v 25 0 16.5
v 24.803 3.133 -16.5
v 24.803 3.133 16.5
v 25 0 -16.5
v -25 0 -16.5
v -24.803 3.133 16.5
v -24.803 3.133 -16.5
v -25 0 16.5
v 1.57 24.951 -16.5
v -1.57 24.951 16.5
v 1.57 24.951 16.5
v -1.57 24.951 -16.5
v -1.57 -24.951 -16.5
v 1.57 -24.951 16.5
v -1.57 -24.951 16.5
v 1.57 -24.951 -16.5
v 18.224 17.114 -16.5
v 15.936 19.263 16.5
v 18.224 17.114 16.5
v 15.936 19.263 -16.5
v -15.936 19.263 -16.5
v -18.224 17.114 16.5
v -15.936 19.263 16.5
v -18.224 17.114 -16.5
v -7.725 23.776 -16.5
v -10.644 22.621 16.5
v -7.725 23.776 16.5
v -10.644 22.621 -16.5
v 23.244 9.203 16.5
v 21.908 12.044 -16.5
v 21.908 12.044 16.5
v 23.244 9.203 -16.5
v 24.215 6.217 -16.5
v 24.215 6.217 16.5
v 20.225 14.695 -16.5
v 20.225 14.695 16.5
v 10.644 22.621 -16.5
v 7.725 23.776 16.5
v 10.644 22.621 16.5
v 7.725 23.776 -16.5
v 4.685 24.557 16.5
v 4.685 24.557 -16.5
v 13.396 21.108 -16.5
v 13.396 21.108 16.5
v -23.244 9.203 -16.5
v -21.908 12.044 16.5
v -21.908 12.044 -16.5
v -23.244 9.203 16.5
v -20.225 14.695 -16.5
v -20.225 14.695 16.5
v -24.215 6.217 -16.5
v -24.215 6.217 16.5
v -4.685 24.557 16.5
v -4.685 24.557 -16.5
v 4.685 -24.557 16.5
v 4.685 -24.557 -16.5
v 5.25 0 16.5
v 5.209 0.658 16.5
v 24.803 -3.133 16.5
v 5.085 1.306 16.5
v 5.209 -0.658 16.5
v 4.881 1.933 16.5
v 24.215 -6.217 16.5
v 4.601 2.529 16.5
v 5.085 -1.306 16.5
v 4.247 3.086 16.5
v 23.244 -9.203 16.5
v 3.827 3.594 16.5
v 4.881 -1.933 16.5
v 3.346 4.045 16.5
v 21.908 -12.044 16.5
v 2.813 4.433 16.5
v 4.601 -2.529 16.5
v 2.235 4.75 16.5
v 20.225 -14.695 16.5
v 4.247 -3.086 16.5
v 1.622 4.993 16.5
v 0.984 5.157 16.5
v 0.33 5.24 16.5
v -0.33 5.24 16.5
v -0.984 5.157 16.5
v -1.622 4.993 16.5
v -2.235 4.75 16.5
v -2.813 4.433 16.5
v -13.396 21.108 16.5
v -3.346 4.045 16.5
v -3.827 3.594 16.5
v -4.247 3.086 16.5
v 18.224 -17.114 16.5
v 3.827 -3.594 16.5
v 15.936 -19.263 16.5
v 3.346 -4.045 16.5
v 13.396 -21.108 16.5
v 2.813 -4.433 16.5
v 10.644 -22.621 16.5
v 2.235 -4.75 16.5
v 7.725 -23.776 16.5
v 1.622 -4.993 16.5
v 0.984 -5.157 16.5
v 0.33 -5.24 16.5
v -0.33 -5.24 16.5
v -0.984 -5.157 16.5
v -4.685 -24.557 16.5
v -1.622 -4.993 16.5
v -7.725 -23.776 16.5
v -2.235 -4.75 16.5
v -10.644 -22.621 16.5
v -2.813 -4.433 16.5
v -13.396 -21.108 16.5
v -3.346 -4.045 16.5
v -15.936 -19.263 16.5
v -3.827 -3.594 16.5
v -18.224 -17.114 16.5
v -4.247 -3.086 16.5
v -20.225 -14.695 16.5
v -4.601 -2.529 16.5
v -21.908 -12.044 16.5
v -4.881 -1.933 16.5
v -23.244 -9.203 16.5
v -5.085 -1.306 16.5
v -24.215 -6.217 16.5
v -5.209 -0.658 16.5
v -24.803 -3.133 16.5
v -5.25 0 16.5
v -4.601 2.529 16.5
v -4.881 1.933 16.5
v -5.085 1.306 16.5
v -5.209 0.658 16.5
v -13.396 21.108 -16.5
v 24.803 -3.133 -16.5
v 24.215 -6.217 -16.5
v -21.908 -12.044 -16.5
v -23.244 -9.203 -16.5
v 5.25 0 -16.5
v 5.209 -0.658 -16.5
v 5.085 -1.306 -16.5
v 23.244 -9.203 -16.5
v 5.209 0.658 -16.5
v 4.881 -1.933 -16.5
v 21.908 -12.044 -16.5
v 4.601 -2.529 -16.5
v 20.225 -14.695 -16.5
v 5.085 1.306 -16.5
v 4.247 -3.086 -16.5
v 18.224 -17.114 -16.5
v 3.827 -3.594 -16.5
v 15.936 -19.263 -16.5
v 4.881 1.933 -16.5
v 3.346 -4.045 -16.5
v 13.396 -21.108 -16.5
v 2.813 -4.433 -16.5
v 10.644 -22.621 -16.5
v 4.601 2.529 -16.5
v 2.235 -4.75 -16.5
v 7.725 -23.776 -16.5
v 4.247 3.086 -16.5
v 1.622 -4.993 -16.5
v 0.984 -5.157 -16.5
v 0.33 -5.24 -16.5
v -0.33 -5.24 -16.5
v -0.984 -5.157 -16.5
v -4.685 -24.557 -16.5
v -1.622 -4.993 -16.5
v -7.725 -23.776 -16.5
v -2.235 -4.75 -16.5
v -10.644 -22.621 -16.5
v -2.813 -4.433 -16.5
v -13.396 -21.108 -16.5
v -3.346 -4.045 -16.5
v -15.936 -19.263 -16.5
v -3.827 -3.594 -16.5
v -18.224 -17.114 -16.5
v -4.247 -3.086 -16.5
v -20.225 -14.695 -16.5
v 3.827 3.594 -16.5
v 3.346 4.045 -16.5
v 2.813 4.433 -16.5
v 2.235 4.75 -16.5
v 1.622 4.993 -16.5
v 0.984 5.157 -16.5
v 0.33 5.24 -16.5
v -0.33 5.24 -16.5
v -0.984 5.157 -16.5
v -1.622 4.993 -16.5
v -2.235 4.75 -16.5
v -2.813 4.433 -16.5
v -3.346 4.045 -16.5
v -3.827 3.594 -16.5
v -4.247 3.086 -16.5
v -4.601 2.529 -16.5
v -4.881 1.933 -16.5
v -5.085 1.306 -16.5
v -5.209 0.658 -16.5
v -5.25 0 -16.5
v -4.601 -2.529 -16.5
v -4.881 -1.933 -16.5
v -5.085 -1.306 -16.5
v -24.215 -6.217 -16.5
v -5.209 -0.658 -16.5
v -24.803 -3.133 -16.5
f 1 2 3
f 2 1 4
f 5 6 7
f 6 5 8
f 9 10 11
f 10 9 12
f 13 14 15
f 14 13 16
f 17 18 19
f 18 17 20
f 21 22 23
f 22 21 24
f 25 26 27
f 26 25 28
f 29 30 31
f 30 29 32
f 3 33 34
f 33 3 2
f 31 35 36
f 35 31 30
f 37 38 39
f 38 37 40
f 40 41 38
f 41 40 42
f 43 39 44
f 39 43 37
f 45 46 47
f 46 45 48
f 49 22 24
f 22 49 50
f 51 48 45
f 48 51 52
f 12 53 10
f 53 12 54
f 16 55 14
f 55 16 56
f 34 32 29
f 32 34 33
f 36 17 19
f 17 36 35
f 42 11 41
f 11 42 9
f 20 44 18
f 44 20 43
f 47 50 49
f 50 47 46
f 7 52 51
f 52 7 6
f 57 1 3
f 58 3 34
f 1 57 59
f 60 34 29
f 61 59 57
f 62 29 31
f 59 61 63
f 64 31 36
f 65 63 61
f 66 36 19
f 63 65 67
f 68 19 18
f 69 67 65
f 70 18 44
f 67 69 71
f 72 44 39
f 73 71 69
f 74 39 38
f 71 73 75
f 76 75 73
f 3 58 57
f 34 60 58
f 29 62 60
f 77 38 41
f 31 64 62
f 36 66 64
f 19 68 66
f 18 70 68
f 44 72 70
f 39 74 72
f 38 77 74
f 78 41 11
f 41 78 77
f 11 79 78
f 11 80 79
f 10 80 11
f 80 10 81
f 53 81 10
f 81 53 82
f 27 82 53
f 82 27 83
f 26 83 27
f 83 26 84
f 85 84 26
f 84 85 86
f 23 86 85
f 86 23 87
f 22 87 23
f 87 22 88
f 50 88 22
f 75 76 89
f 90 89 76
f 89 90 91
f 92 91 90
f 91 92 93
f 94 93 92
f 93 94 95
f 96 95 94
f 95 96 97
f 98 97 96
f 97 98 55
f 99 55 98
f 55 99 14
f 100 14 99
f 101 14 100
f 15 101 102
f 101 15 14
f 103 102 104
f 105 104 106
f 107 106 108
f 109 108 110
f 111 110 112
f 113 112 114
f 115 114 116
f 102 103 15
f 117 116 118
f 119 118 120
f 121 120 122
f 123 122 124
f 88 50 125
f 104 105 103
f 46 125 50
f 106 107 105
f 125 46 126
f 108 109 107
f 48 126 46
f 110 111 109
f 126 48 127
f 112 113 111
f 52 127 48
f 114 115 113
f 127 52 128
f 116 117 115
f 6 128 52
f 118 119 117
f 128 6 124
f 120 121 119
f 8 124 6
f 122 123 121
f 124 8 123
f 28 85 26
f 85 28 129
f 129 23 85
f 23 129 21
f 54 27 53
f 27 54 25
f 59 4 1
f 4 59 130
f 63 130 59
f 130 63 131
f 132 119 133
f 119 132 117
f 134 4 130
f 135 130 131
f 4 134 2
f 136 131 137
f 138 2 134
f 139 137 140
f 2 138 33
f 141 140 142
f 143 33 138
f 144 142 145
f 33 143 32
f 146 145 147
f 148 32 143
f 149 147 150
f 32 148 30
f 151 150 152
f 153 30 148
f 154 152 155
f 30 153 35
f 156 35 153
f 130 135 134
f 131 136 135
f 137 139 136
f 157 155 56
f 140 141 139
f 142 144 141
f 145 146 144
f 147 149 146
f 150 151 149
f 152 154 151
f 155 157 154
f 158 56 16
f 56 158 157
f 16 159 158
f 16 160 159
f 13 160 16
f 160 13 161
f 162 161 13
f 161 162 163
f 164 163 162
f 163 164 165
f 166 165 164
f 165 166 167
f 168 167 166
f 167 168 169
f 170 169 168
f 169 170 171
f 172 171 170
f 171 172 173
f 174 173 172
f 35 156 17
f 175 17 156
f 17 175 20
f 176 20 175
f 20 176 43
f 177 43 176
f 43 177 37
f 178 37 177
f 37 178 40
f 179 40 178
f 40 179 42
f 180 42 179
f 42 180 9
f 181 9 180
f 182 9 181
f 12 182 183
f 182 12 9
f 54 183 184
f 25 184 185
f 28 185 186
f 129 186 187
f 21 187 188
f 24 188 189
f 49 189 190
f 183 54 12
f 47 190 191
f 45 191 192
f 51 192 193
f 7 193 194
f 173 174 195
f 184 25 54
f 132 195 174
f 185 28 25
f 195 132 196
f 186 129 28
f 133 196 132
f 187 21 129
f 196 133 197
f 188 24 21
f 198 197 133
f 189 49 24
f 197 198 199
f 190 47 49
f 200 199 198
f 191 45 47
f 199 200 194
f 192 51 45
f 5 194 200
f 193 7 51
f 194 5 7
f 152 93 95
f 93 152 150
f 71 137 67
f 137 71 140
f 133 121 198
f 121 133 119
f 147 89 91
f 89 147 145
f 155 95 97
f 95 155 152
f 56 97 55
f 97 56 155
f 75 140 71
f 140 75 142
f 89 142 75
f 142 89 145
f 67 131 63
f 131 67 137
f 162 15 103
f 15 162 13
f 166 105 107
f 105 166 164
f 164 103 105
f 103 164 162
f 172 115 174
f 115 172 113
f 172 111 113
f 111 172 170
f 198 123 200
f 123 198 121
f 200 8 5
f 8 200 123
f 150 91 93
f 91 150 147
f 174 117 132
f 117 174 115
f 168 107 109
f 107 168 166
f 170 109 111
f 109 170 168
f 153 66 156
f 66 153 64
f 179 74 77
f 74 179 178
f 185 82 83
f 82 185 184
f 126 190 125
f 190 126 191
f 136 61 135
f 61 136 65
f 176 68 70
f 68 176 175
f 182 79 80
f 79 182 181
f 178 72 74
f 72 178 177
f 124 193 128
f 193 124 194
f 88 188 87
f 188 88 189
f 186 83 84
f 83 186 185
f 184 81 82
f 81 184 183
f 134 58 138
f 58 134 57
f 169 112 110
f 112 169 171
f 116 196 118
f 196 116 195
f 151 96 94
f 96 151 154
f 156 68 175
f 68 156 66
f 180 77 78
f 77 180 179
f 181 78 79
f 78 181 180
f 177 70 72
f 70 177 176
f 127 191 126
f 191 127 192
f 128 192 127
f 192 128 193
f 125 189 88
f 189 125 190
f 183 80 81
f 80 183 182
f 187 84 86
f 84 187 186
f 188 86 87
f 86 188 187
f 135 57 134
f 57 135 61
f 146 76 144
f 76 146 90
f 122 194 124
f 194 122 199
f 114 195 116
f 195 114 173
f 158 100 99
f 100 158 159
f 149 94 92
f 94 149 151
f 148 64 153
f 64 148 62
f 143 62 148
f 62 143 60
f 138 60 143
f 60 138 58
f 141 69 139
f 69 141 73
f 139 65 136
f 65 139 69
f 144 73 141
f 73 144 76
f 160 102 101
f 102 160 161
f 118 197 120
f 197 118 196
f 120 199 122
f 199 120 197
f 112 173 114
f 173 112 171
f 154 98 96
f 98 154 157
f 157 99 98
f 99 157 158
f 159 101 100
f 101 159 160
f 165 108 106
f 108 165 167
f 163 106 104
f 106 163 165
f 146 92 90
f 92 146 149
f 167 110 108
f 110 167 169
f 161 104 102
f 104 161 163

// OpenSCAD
$fn = 50;


difference() {
	union() {
		translate(v = [0, 0, -16.5000000000]) {
			cylinder(h = 33, r = 25.0000000000);
		}
	}
	union() {
		translate(v = [0, 0, -100.0000000000]) {
			cylinder(h = 200, r = 5.2500000000);
		}
	}
}
